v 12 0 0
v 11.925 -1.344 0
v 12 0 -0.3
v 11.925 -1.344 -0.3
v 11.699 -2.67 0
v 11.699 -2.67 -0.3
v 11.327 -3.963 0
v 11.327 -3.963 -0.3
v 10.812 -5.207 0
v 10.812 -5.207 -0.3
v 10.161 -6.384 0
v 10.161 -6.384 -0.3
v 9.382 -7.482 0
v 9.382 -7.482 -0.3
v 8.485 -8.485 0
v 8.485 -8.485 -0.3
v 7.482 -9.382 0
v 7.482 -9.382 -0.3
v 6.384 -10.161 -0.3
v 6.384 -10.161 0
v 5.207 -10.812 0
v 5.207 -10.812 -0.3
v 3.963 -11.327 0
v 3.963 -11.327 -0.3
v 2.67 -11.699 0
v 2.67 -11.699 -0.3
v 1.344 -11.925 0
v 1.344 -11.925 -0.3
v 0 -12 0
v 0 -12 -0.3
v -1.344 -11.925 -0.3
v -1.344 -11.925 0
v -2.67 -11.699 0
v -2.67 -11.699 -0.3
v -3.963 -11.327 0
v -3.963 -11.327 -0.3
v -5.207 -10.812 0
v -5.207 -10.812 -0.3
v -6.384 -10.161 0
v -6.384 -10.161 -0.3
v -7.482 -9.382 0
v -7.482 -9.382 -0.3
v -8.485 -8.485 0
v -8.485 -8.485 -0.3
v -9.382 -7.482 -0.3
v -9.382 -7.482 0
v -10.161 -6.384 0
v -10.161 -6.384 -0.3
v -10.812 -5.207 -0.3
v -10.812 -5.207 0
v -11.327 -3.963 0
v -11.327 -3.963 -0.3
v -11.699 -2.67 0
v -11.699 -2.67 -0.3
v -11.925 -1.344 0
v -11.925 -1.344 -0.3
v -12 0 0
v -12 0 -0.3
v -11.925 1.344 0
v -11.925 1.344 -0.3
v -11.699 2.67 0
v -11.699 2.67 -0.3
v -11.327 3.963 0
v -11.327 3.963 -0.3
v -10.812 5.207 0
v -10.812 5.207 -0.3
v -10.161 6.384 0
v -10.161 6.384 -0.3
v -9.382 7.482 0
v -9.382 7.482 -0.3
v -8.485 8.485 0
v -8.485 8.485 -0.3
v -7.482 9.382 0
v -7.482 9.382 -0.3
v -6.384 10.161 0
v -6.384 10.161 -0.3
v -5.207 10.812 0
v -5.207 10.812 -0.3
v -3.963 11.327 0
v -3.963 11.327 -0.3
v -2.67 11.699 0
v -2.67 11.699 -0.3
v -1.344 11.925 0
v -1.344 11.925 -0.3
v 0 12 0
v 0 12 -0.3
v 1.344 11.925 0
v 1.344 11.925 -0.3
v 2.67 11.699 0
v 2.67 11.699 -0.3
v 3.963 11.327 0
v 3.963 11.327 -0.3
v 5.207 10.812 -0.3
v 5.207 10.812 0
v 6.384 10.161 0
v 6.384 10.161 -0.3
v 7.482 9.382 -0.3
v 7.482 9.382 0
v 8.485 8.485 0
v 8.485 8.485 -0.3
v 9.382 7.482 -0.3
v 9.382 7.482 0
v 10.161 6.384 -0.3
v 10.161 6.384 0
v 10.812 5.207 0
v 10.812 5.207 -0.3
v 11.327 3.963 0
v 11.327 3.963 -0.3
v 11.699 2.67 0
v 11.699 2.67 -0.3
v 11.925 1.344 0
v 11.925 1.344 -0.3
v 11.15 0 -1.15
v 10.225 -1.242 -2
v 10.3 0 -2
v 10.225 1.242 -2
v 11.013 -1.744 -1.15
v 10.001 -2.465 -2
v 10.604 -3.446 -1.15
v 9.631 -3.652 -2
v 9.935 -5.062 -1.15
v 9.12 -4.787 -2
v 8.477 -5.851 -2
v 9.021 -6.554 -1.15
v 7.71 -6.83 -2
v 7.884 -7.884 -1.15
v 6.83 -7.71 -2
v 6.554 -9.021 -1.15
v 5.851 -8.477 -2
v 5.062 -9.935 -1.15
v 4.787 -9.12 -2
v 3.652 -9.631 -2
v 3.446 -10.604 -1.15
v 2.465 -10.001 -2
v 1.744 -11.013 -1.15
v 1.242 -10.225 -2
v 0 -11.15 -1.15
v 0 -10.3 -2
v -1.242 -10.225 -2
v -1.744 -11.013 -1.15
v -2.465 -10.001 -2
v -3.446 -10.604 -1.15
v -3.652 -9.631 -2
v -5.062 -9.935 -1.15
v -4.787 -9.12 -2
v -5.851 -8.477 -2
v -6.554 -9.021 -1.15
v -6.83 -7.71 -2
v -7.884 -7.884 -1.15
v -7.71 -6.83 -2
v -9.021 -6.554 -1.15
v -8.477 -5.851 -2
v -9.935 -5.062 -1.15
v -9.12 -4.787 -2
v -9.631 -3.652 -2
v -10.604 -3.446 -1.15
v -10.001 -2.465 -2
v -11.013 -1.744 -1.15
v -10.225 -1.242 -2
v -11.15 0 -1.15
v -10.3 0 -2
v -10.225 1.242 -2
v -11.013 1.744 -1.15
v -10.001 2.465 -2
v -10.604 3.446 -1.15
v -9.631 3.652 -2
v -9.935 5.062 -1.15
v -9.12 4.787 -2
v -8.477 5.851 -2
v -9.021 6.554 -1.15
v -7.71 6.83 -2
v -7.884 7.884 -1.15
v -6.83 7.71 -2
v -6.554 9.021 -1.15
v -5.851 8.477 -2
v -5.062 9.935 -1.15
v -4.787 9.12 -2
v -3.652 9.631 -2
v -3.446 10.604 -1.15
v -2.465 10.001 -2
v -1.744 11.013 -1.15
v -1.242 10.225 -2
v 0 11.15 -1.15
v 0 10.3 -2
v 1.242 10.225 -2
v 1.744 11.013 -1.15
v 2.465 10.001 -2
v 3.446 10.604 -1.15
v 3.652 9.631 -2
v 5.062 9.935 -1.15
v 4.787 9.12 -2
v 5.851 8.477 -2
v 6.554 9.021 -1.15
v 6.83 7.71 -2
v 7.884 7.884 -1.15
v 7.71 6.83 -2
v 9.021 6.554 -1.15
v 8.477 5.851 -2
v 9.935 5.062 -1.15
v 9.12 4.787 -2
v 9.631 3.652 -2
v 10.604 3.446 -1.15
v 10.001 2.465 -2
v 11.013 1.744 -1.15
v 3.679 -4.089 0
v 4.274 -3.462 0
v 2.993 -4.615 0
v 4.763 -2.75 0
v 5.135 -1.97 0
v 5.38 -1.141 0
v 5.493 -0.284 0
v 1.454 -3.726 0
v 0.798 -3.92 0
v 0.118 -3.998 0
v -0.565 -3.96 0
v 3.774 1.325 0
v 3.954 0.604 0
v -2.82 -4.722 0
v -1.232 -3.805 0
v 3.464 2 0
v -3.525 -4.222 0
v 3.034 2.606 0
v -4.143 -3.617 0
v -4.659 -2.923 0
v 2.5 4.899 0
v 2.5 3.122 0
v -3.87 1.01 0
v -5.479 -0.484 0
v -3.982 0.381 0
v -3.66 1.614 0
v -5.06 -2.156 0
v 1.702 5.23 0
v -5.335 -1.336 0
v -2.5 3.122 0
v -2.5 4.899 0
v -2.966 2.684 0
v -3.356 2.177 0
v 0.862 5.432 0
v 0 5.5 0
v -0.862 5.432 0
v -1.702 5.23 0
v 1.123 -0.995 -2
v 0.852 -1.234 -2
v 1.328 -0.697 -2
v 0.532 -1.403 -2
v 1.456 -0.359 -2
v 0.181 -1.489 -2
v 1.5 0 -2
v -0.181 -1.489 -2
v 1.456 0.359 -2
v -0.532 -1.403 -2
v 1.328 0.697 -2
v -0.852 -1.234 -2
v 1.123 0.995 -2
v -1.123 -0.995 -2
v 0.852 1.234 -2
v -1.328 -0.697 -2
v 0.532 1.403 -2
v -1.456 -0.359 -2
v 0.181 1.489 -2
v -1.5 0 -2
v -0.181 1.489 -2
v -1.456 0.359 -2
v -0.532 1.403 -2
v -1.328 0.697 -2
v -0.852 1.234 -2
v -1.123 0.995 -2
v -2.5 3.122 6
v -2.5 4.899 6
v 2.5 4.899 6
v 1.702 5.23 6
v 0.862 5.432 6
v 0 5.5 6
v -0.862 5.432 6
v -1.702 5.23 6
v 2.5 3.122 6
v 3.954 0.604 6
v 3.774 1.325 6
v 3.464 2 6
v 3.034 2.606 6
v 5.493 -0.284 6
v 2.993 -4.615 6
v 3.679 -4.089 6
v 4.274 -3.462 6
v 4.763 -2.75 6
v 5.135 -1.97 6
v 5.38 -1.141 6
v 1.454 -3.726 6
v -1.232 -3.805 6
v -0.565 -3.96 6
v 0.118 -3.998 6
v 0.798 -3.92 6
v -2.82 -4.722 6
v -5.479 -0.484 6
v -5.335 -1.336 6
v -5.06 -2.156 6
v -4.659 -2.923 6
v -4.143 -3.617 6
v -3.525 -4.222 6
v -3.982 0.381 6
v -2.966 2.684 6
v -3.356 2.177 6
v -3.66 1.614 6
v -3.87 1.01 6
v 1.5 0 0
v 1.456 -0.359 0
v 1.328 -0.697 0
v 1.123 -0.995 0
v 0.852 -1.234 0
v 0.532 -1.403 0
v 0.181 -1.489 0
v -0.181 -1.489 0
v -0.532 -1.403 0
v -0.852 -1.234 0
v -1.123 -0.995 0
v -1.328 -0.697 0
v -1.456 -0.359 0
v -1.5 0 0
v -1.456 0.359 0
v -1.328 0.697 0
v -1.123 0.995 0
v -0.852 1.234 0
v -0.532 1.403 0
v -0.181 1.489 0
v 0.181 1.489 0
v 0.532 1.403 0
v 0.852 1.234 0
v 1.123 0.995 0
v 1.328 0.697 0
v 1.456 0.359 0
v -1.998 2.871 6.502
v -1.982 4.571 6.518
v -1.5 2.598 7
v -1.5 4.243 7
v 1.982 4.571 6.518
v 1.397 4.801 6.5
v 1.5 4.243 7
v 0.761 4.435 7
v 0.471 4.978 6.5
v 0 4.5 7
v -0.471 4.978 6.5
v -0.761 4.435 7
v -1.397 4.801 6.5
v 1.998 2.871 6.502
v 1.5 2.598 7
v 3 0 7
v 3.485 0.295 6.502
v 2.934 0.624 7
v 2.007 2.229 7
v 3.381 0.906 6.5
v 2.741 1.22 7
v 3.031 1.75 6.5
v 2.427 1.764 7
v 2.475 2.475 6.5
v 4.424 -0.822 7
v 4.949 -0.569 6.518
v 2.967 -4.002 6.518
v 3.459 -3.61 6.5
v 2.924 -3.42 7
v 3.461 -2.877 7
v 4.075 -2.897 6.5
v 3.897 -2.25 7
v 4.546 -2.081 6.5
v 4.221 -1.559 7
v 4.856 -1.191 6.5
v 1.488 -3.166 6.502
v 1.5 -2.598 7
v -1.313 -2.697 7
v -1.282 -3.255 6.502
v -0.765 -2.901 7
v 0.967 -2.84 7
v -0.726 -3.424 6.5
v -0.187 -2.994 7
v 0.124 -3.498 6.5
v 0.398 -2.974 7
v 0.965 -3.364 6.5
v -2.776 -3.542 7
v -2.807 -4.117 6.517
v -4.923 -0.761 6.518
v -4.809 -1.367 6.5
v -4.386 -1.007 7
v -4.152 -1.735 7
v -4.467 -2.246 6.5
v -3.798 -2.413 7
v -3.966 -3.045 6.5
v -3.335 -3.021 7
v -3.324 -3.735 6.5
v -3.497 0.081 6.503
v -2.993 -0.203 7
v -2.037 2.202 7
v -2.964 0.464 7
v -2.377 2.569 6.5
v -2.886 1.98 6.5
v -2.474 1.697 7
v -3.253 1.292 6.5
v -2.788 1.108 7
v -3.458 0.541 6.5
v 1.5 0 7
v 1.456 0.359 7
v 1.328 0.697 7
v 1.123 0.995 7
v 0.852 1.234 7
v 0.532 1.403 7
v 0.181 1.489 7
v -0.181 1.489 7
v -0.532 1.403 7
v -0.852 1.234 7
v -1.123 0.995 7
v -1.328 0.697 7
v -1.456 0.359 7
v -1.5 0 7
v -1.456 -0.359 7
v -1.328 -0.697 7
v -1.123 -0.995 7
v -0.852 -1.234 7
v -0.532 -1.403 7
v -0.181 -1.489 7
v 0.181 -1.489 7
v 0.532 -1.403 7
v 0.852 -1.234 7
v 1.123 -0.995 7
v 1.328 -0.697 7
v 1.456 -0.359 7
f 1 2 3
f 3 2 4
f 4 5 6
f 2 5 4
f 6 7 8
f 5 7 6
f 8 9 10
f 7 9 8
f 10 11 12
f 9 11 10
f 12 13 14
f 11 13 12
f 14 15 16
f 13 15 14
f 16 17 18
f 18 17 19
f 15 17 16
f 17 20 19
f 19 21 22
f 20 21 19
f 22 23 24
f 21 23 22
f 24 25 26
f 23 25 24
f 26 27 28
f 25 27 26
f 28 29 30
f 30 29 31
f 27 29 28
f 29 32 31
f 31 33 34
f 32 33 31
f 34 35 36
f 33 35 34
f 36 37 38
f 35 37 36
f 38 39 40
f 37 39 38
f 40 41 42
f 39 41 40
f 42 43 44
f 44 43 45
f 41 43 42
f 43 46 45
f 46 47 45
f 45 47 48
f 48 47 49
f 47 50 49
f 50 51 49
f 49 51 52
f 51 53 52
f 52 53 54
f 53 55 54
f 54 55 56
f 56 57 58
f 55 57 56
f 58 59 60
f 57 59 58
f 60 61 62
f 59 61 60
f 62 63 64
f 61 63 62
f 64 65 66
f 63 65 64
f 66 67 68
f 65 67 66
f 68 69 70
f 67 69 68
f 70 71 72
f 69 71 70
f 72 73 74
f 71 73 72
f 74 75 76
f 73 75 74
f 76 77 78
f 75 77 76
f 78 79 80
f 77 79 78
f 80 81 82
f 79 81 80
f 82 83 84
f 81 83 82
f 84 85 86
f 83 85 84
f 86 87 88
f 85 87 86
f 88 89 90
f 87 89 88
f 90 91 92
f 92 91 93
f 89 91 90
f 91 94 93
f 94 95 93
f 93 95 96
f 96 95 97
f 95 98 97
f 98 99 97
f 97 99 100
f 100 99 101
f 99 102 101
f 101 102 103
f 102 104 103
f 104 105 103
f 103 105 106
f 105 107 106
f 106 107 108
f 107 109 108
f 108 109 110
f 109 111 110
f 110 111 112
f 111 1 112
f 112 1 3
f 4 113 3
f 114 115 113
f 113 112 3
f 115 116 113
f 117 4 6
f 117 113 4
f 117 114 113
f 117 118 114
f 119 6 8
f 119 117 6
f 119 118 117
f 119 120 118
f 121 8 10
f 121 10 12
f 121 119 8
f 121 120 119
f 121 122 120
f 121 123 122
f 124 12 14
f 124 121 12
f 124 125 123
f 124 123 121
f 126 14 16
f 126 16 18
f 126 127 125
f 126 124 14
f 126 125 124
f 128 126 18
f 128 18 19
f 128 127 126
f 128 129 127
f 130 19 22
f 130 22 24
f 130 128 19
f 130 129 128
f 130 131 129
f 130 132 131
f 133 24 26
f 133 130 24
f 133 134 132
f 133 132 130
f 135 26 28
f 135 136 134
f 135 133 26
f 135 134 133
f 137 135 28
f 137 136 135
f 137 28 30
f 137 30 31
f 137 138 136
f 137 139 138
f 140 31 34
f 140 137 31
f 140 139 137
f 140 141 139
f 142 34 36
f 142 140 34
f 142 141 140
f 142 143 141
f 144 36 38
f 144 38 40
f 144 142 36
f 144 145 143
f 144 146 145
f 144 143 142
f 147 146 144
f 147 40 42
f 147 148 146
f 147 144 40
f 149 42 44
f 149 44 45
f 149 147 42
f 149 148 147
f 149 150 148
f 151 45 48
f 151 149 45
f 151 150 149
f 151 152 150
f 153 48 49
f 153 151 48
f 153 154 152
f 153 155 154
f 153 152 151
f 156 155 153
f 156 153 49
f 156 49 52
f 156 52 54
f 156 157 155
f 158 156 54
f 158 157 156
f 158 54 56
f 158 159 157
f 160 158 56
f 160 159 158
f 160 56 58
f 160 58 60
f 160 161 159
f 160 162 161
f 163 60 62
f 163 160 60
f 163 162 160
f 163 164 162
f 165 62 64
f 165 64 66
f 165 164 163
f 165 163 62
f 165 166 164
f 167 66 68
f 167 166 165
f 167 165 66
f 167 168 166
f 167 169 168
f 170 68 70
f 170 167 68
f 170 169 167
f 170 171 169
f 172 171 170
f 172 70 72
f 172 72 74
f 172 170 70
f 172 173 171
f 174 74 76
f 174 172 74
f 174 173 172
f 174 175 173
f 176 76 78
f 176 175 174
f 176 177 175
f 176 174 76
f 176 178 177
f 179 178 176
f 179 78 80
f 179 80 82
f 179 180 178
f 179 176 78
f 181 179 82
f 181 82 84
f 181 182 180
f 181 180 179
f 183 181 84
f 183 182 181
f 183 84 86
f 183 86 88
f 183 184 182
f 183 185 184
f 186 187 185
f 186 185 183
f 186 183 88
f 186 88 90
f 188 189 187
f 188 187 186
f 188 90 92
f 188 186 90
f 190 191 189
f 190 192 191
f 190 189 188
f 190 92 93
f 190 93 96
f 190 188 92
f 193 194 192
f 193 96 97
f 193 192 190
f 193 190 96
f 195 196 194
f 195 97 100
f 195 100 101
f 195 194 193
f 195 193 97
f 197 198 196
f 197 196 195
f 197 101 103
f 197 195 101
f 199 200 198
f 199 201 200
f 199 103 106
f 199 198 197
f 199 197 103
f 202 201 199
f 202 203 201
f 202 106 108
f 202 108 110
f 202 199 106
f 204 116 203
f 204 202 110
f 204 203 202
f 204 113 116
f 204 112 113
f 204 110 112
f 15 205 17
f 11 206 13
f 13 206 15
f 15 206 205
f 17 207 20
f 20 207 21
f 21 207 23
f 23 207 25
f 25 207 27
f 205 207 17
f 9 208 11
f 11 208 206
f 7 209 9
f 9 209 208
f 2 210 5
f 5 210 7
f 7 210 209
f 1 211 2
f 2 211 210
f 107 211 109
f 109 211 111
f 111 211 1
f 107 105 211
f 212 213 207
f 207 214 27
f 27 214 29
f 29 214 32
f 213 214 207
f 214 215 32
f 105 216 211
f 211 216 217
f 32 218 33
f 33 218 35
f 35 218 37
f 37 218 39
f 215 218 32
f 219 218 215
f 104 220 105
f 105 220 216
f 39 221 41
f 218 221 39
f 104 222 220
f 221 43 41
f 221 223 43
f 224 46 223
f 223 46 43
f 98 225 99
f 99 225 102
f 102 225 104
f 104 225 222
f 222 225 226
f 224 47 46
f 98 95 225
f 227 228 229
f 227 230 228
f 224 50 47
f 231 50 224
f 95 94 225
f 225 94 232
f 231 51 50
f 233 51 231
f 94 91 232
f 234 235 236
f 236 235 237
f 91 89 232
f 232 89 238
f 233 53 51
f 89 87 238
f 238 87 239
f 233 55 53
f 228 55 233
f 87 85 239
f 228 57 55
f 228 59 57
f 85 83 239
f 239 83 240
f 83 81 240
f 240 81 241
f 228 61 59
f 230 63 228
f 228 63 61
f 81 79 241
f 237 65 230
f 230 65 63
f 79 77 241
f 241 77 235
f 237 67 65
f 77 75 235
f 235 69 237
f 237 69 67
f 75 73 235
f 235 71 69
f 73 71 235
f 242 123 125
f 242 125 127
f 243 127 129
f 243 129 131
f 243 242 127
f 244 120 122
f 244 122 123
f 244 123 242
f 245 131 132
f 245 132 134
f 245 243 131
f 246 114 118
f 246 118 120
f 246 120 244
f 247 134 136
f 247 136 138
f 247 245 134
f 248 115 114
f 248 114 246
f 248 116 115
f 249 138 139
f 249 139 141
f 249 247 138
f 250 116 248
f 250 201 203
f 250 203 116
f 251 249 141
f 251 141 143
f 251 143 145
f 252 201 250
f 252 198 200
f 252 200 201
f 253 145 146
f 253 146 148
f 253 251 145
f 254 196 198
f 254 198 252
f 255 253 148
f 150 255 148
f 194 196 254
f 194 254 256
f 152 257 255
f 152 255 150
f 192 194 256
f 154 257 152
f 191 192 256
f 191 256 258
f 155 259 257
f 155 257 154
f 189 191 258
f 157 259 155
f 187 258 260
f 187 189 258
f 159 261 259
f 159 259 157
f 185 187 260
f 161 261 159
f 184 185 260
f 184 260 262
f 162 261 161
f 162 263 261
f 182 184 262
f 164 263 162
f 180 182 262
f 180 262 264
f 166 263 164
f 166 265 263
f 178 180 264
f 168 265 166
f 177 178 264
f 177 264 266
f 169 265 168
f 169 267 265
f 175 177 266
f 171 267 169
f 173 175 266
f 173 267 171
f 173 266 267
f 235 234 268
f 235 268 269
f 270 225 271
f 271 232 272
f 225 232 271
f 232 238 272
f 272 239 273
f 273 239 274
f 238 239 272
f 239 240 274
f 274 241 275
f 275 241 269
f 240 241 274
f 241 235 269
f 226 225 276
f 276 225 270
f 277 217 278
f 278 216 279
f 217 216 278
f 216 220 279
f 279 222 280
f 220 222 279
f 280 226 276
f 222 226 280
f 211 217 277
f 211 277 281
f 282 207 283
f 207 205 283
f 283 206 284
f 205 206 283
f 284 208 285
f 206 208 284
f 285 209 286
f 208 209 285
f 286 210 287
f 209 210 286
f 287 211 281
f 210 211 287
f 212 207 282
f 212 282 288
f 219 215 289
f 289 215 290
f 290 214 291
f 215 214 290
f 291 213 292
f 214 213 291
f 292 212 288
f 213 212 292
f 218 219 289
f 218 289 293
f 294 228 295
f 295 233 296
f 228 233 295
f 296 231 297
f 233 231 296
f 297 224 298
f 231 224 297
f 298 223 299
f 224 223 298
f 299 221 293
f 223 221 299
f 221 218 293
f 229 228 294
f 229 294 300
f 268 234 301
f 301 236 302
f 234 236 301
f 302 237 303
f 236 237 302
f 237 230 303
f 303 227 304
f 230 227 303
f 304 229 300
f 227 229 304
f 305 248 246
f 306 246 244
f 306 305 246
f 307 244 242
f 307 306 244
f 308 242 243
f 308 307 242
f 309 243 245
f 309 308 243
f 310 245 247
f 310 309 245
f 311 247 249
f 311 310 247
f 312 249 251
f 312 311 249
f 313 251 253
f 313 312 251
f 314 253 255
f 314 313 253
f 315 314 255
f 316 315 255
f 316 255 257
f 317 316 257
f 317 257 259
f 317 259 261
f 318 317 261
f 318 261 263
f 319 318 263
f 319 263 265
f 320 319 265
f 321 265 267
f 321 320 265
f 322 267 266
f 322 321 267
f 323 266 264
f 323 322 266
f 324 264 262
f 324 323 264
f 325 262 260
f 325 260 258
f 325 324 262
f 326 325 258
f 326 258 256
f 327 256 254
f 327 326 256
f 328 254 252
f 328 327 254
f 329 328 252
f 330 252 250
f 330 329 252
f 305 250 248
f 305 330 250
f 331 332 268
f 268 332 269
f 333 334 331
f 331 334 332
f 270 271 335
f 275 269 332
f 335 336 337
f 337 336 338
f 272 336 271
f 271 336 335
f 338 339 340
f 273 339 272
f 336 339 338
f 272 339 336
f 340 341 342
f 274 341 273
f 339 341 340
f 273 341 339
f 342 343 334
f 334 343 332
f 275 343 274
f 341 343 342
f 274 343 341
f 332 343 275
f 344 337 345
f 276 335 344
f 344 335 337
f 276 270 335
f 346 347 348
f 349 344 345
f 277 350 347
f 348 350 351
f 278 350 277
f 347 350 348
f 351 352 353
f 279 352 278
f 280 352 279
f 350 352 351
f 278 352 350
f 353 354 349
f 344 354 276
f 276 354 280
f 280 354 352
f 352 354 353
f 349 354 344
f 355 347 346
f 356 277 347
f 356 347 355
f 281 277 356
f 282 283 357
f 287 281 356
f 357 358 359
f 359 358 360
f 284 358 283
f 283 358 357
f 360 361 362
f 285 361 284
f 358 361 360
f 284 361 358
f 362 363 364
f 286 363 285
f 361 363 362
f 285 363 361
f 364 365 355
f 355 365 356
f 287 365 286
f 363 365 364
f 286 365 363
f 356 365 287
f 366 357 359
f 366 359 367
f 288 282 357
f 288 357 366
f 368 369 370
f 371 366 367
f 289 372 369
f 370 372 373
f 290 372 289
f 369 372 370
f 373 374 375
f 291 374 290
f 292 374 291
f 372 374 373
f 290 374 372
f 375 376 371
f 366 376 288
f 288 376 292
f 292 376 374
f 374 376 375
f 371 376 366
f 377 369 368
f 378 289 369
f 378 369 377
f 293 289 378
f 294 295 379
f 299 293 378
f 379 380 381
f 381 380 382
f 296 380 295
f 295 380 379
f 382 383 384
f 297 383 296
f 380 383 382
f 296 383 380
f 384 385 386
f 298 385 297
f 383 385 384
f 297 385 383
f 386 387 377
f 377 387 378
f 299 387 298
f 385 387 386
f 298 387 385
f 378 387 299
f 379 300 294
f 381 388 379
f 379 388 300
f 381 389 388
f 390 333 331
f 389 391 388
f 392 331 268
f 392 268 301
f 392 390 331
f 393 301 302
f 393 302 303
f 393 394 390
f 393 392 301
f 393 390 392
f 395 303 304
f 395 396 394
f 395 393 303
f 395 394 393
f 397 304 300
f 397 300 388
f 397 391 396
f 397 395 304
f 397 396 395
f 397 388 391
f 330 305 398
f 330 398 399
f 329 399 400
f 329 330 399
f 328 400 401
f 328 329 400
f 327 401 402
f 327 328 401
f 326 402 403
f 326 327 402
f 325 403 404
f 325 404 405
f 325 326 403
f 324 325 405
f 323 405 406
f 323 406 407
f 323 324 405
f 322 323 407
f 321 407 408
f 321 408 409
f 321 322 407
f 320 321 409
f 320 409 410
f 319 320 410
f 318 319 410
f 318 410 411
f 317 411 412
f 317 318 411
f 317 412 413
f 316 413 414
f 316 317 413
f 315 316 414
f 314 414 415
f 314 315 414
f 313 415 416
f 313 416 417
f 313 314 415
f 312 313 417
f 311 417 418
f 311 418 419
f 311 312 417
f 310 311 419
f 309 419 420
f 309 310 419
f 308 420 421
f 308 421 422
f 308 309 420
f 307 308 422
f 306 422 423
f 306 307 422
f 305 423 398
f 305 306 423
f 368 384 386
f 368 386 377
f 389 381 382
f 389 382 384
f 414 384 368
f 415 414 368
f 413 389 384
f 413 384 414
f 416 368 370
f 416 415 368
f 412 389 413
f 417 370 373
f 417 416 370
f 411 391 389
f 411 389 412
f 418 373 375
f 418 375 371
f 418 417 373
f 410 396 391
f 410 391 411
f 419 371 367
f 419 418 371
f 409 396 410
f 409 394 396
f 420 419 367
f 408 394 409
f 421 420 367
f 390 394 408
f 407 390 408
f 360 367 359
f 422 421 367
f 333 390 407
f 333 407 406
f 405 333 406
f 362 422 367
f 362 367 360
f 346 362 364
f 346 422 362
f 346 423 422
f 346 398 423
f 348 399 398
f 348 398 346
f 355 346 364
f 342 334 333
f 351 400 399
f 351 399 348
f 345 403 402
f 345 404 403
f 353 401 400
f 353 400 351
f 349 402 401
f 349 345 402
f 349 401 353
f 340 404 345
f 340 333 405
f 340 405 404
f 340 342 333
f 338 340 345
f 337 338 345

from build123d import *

# Parameters (mm, degrees)
SKETCH_R        = 1.5
PAD_DEPTH       = 7
SKETCH001_R     = 12
SKETCH001_R_2   = 1.5
PAD001_DEPTH    = 2
CHAMFER_SIZE    = 1
CHAMFER001_SIZE = 1.7


with BuildPart() as part:
    # Sketch → Pad (new body)
    with BuildSketch(Plane.XY):
        with BuildLine():
            ThreePointArc((-2.5, 3.122499), (-3.518971, 1.901799), (-3.981855, 0.380567))
            Line((-5.478695, -0.483634), (-3.981855, 0.380567))
            ThreePointArc((-5.478695, -0.483634), (-4.659167, -2.922699), (-2.81991, -4.722087))
            Line((-1.232265, -3.80546), (-2.81991, -4.722087))
            ThreePointArc((-1.232265, -3.80546), (0.117848, -3.998264), (1.454262, -3.726275))
            Line((2.992718, -4.614503), (1.454262, -3.726275))
            ThreePointArc((2.992718, -4.614503), (4.763149, -2.749985), (5.492638, -0.284484))
            Line((3.954108, 0.604177), (5.492638, -0.284484))
            ThreePointArc((3.954108, 0.604177), (3.46401, 2.000159), (2.5, 3.122499))
            Line((2.5, 3.122499), (2.5, 4.898979))
            ThreePointArc((2.5, 4.898979), (0, 5.5), (-2.5, 4.898979))
            Line((-2.5, 3.122499), (-2.5, 4.898979))
        make_face()
        Circle(SKETCH_R, mode=Mode.SUBTRACT)
    extrude(amount=PAD_DEPTH)

    # Sketch001 (on Face14 of Pad) → Pad001 (join)
    with BuildSketch(Plane(origin=(0, 0, 0), x_dir=(1, 0, 0), z_dir=(0, 0, -1))):
        Circle(SKETCH001_R)
        Circle(SKETCH001_R_2, mode=Mode.SUBTRACT)
    extrude(amount=PAD001_DEPTH)

    # Chamfer
    chamfer_edges = [part.edges().sort_by_distance(p)[0] for p in [
        (-2.026088, -4.263773, 7),
        (0.117848, -3.998264, 7),
        (2.22349, -4.170389, 7),
        (4.763149, -2.749985, 7),
        (3.46401, 2.000159, 7),
        (4.723373, 0.159847, 7),
        (2.5, 4.010739, 7),
        (0, 5.5, 7),
        (-2.5, 4.010739, 7),
        (-3.518971, 1.901799, 7),
        (-4.730275, -0.051534, 7),
        (-4.659167, -2.922699, 7),
    ]]
    chamfer(chamfer_edges, length=CHAMFER_SIZE)

    # Chamfer001
    chamfer001_edges = [part.edges().sort_by_distance(p)[0] for p in [
        (-12, 0, -2),
    ]]
    chamfer(chamfer001_edges, length=CHAMFER001_SIZE)


solid = part.part
